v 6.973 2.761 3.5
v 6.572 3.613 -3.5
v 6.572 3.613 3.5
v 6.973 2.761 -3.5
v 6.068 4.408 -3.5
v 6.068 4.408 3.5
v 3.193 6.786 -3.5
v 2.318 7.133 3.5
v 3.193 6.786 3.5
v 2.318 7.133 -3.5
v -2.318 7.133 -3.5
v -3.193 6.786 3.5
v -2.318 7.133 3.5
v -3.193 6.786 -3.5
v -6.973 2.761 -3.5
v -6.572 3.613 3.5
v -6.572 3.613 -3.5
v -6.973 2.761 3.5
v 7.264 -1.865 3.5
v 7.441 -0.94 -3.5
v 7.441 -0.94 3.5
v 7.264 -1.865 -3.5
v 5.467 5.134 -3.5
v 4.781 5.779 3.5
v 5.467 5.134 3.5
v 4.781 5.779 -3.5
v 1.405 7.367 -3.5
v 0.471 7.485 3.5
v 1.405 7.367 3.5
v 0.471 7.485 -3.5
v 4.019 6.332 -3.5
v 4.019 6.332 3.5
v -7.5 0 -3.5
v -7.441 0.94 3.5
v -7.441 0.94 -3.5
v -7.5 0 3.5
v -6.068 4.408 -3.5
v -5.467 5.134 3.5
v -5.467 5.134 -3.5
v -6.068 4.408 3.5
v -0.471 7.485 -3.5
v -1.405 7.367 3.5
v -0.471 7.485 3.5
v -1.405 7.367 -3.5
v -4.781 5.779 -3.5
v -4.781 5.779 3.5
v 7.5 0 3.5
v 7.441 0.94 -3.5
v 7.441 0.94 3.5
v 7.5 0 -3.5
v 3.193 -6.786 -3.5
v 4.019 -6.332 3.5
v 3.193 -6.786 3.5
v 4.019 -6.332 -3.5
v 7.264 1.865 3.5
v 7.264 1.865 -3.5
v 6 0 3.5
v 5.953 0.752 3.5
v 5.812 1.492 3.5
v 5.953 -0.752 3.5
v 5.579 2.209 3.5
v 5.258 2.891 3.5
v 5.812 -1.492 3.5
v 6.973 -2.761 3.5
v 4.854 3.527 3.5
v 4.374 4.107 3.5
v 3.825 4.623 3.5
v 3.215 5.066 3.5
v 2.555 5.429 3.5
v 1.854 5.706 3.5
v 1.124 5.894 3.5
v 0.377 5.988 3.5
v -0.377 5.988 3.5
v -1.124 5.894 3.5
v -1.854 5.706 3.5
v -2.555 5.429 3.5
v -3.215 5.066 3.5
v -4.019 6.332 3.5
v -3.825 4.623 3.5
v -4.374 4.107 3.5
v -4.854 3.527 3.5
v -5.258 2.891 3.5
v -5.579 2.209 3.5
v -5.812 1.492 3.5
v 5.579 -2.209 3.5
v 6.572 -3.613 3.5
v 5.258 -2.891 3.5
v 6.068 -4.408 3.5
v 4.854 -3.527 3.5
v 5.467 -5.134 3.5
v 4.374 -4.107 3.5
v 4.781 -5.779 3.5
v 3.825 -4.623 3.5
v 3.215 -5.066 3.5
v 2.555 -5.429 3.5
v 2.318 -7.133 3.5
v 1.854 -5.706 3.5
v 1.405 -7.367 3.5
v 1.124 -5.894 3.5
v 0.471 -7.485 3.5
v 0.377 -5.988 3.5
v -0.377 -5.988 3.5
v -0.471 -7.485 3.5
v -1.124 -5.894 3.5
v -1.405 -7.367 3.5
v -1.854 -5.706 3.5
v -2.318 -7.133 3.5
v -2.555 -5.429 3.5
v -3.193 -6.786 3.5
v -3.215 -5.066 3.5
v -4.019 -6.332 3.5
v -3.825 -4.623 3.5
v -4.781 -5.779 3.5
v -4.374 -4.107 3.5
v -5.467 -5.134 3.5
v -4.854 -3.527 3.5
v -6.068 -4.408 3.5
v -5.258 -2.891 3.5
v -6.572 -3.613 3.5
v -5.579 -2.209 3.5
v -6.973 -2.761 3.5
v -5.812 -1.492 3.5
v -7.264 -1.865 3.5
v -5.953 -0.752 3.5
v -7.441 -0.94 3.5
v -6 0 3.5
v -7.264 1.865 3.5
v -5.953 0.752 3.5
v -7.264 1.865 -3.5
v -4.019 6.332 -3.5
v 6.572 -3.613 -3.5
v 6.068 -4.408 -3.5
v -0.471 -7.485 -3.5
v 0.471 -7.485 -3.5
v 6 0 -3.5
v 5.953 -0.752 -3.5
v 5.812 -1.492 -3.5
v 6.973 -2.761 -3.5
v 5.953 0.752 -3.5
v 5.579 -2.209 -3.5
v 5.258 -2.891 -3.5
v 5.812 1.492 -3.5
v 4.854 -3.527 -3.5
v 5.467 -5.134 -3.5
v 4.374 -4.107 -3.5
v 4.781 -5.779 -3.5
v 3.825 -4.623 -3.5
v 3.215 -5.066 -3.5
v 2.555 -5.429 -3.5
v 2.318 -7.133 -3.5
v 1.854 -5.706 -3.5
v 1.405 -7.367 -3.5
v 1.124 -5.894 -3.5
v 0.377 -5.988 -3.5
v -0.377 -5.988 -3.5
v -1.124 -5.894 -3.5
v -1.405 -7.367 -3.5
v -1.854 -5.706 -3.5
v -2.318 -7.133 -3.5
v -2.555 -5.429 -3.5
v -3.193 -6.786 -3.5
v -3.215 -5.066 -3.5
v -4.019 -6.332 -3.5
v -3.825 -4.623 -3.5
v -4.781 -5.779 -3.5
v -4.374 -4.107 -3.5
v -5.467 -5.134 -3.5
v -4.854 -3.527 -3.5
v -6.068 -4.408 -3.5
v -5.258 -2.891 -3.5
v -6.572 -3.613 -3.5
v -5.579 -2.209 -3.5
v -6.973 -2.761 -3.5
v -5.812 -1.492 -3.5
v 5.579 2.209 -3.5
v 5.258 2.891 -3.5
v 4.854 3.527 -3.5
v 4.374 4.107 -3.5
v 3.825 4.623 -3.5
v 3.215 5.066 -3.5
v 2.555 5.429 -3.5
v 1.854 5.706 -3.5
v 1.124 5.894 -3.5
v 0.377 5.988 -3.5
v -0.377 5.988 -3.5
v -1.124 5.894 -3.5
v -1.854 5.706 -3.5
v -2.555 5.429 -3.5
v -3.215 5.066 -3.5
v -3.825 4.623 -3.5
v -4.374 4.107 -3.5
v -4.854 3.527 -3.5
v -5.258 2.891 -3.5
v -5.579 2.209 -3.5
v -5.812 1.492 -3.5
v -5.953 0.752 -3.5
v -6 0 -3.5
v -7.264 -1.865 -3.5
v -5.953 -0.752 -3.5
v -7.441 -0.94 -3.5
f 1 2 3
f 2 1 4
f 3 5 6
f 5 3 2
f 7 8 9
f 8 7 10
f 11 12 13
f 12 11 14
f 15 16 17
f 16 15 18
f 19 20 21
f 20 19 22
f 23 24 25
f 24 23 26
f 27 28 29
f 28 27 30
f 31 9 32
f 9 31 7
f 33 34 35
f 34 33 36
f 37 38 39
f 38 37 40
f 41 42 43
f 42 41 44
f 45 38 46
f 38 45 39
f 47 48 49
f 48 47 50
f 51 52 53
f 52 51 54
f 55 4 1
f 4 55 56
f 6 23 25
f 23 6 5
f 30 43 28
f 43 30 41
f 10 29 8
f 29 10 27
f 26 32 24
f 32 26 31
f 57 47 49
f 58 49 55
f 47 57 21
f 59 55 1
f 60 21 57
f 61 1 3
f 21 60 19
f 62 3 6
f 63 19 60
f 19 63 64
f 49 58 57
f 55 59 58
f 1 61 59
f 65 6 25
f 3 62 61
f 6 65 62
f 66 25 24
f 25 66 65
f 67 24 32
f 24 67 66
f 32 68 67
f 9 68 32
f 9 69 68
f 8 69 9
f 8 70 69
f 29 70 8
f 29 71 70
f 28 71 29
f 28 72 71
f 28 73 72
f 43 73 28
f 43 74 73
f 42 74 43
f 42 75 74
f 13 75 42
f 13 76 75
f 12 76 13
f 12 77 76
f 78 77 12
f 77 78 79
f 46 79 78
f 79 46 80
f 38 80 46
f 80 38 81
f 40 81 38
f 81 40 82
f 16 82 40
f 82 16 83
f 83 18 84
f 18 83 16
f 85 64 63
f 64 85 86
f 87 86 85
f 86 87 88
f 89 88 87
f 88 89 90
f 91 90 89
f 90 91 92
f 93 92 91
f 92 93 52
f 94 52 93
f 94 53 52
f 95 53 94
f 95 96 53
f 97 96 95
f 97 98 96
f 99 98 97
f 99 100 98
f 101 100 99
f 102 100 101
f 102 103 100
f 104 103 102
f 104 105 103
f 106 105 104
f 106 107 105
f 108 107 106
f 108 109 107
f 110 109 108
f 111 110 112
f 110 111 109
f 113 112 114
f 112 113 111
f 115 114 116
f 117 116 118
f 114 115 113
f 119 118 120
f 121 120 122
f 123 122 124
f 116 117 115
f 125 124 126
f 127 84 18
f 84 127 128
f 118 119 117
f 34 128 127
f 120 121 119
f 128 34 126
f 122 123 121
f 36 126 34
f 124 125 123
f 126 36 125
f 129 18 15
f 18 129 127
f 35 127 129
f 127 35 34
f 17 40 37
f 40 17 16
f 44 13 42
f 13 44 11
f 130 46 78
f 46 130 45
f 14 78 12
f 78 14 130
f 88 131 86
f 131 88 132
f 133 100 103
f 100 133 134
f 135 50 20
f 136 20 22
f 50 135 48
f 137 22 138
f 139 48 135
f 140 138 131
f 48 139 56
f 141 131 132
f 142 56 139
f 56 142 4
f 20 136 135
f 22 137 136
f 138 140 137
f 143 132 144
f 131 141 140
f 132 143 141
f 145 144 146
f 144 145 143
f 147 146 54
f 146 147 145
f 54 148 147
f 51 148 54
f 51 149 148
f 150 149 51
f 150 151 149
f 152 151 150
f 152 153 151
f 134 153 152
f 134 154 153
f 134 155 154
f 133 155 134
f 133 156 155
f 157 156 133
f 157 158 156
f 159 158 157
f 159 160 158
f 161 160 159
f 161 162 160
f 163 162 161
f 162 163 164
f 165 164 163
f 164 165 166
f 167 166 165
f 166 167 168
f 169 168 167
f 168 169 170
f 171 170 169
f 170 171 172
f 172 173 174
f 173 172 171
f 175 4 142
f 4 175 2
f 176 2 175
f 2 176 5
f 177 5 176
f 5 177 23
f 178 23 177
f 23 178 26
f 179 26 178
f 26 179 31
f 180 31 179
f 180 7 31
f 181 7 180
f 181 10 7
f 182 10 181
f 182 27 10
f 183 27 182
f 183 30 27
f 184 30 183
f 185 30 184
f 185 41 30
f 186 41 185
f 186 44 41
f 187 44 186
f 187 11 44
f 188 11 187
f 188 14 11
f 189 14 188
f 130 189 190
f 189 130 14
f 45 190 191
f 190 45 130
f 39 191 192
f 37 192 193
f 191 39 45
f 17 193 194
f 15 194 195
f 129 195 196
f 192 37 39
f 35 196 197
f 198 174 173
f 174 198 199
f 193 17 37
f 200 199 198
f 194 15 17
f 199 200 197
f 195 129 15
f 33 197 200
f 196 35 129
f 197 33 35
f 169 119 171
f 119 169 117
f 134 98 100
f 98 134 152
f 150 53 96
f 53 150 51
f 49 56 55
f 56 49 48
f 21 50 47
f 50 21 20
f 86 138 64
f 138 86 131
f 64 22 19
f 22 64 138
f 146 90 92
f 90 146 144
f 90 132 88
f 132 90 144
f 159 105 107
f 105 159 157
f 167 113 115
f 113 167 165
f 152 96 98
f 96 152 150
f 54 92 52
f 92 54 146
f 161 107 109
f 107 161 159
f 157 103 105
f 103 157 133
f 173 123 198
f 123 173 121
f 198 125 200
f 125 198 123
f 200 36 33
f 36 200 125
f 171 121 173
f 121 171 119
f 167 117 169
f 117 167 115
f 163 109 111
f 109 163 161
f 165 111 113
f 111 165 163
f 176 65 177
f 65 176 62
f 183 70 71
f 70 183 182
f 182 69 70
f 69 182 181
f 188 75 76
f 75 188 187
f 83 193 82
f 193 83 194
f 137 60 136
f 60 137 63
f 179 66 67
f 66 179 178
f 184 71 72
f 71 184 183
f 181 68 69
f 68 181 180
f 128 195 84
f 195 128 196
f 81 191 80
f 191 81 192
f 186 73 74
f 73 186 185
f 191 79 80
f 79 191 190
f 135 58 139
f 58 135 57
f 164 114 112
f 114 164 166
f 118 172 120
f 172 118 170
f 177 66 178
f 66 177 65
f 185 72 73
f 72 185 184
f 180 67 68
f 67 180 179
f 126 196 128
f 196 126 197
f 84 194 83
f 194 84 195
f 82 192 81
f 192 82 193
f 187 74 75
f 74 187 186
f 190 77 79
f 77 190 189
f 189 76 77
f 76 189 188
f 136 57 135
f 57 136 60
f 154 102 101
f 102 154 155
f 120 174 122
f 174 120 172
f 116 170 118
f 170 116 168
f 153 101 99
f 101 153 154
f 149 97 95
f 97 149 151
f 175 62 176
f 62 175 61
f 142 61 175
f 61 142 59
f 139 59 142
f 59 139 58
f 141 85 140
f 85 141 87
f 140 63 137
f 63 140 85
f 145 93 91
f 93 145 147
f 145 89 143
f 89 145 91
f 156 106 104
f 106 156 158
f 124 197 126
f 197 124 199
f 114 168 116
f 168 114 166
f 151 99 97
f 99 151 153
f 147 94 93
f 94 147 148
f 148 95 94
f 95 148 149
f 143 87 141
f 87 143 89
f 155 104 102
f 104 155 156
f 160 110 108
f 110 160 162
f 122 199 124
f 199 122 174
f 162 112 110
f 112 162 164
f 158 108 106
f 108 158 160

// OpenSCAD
$fn = 50;


difference() {
	union() {
		translate(v = [0, 0, -3.5000000000]) {
			cylinder(h = 7, r = 7.5000000000);
		}
	}
	union() {
		translate(v = [0, 0, -100.0000000000]) {
			cylinder(h = 200, r = 6);
		}
	}
}
